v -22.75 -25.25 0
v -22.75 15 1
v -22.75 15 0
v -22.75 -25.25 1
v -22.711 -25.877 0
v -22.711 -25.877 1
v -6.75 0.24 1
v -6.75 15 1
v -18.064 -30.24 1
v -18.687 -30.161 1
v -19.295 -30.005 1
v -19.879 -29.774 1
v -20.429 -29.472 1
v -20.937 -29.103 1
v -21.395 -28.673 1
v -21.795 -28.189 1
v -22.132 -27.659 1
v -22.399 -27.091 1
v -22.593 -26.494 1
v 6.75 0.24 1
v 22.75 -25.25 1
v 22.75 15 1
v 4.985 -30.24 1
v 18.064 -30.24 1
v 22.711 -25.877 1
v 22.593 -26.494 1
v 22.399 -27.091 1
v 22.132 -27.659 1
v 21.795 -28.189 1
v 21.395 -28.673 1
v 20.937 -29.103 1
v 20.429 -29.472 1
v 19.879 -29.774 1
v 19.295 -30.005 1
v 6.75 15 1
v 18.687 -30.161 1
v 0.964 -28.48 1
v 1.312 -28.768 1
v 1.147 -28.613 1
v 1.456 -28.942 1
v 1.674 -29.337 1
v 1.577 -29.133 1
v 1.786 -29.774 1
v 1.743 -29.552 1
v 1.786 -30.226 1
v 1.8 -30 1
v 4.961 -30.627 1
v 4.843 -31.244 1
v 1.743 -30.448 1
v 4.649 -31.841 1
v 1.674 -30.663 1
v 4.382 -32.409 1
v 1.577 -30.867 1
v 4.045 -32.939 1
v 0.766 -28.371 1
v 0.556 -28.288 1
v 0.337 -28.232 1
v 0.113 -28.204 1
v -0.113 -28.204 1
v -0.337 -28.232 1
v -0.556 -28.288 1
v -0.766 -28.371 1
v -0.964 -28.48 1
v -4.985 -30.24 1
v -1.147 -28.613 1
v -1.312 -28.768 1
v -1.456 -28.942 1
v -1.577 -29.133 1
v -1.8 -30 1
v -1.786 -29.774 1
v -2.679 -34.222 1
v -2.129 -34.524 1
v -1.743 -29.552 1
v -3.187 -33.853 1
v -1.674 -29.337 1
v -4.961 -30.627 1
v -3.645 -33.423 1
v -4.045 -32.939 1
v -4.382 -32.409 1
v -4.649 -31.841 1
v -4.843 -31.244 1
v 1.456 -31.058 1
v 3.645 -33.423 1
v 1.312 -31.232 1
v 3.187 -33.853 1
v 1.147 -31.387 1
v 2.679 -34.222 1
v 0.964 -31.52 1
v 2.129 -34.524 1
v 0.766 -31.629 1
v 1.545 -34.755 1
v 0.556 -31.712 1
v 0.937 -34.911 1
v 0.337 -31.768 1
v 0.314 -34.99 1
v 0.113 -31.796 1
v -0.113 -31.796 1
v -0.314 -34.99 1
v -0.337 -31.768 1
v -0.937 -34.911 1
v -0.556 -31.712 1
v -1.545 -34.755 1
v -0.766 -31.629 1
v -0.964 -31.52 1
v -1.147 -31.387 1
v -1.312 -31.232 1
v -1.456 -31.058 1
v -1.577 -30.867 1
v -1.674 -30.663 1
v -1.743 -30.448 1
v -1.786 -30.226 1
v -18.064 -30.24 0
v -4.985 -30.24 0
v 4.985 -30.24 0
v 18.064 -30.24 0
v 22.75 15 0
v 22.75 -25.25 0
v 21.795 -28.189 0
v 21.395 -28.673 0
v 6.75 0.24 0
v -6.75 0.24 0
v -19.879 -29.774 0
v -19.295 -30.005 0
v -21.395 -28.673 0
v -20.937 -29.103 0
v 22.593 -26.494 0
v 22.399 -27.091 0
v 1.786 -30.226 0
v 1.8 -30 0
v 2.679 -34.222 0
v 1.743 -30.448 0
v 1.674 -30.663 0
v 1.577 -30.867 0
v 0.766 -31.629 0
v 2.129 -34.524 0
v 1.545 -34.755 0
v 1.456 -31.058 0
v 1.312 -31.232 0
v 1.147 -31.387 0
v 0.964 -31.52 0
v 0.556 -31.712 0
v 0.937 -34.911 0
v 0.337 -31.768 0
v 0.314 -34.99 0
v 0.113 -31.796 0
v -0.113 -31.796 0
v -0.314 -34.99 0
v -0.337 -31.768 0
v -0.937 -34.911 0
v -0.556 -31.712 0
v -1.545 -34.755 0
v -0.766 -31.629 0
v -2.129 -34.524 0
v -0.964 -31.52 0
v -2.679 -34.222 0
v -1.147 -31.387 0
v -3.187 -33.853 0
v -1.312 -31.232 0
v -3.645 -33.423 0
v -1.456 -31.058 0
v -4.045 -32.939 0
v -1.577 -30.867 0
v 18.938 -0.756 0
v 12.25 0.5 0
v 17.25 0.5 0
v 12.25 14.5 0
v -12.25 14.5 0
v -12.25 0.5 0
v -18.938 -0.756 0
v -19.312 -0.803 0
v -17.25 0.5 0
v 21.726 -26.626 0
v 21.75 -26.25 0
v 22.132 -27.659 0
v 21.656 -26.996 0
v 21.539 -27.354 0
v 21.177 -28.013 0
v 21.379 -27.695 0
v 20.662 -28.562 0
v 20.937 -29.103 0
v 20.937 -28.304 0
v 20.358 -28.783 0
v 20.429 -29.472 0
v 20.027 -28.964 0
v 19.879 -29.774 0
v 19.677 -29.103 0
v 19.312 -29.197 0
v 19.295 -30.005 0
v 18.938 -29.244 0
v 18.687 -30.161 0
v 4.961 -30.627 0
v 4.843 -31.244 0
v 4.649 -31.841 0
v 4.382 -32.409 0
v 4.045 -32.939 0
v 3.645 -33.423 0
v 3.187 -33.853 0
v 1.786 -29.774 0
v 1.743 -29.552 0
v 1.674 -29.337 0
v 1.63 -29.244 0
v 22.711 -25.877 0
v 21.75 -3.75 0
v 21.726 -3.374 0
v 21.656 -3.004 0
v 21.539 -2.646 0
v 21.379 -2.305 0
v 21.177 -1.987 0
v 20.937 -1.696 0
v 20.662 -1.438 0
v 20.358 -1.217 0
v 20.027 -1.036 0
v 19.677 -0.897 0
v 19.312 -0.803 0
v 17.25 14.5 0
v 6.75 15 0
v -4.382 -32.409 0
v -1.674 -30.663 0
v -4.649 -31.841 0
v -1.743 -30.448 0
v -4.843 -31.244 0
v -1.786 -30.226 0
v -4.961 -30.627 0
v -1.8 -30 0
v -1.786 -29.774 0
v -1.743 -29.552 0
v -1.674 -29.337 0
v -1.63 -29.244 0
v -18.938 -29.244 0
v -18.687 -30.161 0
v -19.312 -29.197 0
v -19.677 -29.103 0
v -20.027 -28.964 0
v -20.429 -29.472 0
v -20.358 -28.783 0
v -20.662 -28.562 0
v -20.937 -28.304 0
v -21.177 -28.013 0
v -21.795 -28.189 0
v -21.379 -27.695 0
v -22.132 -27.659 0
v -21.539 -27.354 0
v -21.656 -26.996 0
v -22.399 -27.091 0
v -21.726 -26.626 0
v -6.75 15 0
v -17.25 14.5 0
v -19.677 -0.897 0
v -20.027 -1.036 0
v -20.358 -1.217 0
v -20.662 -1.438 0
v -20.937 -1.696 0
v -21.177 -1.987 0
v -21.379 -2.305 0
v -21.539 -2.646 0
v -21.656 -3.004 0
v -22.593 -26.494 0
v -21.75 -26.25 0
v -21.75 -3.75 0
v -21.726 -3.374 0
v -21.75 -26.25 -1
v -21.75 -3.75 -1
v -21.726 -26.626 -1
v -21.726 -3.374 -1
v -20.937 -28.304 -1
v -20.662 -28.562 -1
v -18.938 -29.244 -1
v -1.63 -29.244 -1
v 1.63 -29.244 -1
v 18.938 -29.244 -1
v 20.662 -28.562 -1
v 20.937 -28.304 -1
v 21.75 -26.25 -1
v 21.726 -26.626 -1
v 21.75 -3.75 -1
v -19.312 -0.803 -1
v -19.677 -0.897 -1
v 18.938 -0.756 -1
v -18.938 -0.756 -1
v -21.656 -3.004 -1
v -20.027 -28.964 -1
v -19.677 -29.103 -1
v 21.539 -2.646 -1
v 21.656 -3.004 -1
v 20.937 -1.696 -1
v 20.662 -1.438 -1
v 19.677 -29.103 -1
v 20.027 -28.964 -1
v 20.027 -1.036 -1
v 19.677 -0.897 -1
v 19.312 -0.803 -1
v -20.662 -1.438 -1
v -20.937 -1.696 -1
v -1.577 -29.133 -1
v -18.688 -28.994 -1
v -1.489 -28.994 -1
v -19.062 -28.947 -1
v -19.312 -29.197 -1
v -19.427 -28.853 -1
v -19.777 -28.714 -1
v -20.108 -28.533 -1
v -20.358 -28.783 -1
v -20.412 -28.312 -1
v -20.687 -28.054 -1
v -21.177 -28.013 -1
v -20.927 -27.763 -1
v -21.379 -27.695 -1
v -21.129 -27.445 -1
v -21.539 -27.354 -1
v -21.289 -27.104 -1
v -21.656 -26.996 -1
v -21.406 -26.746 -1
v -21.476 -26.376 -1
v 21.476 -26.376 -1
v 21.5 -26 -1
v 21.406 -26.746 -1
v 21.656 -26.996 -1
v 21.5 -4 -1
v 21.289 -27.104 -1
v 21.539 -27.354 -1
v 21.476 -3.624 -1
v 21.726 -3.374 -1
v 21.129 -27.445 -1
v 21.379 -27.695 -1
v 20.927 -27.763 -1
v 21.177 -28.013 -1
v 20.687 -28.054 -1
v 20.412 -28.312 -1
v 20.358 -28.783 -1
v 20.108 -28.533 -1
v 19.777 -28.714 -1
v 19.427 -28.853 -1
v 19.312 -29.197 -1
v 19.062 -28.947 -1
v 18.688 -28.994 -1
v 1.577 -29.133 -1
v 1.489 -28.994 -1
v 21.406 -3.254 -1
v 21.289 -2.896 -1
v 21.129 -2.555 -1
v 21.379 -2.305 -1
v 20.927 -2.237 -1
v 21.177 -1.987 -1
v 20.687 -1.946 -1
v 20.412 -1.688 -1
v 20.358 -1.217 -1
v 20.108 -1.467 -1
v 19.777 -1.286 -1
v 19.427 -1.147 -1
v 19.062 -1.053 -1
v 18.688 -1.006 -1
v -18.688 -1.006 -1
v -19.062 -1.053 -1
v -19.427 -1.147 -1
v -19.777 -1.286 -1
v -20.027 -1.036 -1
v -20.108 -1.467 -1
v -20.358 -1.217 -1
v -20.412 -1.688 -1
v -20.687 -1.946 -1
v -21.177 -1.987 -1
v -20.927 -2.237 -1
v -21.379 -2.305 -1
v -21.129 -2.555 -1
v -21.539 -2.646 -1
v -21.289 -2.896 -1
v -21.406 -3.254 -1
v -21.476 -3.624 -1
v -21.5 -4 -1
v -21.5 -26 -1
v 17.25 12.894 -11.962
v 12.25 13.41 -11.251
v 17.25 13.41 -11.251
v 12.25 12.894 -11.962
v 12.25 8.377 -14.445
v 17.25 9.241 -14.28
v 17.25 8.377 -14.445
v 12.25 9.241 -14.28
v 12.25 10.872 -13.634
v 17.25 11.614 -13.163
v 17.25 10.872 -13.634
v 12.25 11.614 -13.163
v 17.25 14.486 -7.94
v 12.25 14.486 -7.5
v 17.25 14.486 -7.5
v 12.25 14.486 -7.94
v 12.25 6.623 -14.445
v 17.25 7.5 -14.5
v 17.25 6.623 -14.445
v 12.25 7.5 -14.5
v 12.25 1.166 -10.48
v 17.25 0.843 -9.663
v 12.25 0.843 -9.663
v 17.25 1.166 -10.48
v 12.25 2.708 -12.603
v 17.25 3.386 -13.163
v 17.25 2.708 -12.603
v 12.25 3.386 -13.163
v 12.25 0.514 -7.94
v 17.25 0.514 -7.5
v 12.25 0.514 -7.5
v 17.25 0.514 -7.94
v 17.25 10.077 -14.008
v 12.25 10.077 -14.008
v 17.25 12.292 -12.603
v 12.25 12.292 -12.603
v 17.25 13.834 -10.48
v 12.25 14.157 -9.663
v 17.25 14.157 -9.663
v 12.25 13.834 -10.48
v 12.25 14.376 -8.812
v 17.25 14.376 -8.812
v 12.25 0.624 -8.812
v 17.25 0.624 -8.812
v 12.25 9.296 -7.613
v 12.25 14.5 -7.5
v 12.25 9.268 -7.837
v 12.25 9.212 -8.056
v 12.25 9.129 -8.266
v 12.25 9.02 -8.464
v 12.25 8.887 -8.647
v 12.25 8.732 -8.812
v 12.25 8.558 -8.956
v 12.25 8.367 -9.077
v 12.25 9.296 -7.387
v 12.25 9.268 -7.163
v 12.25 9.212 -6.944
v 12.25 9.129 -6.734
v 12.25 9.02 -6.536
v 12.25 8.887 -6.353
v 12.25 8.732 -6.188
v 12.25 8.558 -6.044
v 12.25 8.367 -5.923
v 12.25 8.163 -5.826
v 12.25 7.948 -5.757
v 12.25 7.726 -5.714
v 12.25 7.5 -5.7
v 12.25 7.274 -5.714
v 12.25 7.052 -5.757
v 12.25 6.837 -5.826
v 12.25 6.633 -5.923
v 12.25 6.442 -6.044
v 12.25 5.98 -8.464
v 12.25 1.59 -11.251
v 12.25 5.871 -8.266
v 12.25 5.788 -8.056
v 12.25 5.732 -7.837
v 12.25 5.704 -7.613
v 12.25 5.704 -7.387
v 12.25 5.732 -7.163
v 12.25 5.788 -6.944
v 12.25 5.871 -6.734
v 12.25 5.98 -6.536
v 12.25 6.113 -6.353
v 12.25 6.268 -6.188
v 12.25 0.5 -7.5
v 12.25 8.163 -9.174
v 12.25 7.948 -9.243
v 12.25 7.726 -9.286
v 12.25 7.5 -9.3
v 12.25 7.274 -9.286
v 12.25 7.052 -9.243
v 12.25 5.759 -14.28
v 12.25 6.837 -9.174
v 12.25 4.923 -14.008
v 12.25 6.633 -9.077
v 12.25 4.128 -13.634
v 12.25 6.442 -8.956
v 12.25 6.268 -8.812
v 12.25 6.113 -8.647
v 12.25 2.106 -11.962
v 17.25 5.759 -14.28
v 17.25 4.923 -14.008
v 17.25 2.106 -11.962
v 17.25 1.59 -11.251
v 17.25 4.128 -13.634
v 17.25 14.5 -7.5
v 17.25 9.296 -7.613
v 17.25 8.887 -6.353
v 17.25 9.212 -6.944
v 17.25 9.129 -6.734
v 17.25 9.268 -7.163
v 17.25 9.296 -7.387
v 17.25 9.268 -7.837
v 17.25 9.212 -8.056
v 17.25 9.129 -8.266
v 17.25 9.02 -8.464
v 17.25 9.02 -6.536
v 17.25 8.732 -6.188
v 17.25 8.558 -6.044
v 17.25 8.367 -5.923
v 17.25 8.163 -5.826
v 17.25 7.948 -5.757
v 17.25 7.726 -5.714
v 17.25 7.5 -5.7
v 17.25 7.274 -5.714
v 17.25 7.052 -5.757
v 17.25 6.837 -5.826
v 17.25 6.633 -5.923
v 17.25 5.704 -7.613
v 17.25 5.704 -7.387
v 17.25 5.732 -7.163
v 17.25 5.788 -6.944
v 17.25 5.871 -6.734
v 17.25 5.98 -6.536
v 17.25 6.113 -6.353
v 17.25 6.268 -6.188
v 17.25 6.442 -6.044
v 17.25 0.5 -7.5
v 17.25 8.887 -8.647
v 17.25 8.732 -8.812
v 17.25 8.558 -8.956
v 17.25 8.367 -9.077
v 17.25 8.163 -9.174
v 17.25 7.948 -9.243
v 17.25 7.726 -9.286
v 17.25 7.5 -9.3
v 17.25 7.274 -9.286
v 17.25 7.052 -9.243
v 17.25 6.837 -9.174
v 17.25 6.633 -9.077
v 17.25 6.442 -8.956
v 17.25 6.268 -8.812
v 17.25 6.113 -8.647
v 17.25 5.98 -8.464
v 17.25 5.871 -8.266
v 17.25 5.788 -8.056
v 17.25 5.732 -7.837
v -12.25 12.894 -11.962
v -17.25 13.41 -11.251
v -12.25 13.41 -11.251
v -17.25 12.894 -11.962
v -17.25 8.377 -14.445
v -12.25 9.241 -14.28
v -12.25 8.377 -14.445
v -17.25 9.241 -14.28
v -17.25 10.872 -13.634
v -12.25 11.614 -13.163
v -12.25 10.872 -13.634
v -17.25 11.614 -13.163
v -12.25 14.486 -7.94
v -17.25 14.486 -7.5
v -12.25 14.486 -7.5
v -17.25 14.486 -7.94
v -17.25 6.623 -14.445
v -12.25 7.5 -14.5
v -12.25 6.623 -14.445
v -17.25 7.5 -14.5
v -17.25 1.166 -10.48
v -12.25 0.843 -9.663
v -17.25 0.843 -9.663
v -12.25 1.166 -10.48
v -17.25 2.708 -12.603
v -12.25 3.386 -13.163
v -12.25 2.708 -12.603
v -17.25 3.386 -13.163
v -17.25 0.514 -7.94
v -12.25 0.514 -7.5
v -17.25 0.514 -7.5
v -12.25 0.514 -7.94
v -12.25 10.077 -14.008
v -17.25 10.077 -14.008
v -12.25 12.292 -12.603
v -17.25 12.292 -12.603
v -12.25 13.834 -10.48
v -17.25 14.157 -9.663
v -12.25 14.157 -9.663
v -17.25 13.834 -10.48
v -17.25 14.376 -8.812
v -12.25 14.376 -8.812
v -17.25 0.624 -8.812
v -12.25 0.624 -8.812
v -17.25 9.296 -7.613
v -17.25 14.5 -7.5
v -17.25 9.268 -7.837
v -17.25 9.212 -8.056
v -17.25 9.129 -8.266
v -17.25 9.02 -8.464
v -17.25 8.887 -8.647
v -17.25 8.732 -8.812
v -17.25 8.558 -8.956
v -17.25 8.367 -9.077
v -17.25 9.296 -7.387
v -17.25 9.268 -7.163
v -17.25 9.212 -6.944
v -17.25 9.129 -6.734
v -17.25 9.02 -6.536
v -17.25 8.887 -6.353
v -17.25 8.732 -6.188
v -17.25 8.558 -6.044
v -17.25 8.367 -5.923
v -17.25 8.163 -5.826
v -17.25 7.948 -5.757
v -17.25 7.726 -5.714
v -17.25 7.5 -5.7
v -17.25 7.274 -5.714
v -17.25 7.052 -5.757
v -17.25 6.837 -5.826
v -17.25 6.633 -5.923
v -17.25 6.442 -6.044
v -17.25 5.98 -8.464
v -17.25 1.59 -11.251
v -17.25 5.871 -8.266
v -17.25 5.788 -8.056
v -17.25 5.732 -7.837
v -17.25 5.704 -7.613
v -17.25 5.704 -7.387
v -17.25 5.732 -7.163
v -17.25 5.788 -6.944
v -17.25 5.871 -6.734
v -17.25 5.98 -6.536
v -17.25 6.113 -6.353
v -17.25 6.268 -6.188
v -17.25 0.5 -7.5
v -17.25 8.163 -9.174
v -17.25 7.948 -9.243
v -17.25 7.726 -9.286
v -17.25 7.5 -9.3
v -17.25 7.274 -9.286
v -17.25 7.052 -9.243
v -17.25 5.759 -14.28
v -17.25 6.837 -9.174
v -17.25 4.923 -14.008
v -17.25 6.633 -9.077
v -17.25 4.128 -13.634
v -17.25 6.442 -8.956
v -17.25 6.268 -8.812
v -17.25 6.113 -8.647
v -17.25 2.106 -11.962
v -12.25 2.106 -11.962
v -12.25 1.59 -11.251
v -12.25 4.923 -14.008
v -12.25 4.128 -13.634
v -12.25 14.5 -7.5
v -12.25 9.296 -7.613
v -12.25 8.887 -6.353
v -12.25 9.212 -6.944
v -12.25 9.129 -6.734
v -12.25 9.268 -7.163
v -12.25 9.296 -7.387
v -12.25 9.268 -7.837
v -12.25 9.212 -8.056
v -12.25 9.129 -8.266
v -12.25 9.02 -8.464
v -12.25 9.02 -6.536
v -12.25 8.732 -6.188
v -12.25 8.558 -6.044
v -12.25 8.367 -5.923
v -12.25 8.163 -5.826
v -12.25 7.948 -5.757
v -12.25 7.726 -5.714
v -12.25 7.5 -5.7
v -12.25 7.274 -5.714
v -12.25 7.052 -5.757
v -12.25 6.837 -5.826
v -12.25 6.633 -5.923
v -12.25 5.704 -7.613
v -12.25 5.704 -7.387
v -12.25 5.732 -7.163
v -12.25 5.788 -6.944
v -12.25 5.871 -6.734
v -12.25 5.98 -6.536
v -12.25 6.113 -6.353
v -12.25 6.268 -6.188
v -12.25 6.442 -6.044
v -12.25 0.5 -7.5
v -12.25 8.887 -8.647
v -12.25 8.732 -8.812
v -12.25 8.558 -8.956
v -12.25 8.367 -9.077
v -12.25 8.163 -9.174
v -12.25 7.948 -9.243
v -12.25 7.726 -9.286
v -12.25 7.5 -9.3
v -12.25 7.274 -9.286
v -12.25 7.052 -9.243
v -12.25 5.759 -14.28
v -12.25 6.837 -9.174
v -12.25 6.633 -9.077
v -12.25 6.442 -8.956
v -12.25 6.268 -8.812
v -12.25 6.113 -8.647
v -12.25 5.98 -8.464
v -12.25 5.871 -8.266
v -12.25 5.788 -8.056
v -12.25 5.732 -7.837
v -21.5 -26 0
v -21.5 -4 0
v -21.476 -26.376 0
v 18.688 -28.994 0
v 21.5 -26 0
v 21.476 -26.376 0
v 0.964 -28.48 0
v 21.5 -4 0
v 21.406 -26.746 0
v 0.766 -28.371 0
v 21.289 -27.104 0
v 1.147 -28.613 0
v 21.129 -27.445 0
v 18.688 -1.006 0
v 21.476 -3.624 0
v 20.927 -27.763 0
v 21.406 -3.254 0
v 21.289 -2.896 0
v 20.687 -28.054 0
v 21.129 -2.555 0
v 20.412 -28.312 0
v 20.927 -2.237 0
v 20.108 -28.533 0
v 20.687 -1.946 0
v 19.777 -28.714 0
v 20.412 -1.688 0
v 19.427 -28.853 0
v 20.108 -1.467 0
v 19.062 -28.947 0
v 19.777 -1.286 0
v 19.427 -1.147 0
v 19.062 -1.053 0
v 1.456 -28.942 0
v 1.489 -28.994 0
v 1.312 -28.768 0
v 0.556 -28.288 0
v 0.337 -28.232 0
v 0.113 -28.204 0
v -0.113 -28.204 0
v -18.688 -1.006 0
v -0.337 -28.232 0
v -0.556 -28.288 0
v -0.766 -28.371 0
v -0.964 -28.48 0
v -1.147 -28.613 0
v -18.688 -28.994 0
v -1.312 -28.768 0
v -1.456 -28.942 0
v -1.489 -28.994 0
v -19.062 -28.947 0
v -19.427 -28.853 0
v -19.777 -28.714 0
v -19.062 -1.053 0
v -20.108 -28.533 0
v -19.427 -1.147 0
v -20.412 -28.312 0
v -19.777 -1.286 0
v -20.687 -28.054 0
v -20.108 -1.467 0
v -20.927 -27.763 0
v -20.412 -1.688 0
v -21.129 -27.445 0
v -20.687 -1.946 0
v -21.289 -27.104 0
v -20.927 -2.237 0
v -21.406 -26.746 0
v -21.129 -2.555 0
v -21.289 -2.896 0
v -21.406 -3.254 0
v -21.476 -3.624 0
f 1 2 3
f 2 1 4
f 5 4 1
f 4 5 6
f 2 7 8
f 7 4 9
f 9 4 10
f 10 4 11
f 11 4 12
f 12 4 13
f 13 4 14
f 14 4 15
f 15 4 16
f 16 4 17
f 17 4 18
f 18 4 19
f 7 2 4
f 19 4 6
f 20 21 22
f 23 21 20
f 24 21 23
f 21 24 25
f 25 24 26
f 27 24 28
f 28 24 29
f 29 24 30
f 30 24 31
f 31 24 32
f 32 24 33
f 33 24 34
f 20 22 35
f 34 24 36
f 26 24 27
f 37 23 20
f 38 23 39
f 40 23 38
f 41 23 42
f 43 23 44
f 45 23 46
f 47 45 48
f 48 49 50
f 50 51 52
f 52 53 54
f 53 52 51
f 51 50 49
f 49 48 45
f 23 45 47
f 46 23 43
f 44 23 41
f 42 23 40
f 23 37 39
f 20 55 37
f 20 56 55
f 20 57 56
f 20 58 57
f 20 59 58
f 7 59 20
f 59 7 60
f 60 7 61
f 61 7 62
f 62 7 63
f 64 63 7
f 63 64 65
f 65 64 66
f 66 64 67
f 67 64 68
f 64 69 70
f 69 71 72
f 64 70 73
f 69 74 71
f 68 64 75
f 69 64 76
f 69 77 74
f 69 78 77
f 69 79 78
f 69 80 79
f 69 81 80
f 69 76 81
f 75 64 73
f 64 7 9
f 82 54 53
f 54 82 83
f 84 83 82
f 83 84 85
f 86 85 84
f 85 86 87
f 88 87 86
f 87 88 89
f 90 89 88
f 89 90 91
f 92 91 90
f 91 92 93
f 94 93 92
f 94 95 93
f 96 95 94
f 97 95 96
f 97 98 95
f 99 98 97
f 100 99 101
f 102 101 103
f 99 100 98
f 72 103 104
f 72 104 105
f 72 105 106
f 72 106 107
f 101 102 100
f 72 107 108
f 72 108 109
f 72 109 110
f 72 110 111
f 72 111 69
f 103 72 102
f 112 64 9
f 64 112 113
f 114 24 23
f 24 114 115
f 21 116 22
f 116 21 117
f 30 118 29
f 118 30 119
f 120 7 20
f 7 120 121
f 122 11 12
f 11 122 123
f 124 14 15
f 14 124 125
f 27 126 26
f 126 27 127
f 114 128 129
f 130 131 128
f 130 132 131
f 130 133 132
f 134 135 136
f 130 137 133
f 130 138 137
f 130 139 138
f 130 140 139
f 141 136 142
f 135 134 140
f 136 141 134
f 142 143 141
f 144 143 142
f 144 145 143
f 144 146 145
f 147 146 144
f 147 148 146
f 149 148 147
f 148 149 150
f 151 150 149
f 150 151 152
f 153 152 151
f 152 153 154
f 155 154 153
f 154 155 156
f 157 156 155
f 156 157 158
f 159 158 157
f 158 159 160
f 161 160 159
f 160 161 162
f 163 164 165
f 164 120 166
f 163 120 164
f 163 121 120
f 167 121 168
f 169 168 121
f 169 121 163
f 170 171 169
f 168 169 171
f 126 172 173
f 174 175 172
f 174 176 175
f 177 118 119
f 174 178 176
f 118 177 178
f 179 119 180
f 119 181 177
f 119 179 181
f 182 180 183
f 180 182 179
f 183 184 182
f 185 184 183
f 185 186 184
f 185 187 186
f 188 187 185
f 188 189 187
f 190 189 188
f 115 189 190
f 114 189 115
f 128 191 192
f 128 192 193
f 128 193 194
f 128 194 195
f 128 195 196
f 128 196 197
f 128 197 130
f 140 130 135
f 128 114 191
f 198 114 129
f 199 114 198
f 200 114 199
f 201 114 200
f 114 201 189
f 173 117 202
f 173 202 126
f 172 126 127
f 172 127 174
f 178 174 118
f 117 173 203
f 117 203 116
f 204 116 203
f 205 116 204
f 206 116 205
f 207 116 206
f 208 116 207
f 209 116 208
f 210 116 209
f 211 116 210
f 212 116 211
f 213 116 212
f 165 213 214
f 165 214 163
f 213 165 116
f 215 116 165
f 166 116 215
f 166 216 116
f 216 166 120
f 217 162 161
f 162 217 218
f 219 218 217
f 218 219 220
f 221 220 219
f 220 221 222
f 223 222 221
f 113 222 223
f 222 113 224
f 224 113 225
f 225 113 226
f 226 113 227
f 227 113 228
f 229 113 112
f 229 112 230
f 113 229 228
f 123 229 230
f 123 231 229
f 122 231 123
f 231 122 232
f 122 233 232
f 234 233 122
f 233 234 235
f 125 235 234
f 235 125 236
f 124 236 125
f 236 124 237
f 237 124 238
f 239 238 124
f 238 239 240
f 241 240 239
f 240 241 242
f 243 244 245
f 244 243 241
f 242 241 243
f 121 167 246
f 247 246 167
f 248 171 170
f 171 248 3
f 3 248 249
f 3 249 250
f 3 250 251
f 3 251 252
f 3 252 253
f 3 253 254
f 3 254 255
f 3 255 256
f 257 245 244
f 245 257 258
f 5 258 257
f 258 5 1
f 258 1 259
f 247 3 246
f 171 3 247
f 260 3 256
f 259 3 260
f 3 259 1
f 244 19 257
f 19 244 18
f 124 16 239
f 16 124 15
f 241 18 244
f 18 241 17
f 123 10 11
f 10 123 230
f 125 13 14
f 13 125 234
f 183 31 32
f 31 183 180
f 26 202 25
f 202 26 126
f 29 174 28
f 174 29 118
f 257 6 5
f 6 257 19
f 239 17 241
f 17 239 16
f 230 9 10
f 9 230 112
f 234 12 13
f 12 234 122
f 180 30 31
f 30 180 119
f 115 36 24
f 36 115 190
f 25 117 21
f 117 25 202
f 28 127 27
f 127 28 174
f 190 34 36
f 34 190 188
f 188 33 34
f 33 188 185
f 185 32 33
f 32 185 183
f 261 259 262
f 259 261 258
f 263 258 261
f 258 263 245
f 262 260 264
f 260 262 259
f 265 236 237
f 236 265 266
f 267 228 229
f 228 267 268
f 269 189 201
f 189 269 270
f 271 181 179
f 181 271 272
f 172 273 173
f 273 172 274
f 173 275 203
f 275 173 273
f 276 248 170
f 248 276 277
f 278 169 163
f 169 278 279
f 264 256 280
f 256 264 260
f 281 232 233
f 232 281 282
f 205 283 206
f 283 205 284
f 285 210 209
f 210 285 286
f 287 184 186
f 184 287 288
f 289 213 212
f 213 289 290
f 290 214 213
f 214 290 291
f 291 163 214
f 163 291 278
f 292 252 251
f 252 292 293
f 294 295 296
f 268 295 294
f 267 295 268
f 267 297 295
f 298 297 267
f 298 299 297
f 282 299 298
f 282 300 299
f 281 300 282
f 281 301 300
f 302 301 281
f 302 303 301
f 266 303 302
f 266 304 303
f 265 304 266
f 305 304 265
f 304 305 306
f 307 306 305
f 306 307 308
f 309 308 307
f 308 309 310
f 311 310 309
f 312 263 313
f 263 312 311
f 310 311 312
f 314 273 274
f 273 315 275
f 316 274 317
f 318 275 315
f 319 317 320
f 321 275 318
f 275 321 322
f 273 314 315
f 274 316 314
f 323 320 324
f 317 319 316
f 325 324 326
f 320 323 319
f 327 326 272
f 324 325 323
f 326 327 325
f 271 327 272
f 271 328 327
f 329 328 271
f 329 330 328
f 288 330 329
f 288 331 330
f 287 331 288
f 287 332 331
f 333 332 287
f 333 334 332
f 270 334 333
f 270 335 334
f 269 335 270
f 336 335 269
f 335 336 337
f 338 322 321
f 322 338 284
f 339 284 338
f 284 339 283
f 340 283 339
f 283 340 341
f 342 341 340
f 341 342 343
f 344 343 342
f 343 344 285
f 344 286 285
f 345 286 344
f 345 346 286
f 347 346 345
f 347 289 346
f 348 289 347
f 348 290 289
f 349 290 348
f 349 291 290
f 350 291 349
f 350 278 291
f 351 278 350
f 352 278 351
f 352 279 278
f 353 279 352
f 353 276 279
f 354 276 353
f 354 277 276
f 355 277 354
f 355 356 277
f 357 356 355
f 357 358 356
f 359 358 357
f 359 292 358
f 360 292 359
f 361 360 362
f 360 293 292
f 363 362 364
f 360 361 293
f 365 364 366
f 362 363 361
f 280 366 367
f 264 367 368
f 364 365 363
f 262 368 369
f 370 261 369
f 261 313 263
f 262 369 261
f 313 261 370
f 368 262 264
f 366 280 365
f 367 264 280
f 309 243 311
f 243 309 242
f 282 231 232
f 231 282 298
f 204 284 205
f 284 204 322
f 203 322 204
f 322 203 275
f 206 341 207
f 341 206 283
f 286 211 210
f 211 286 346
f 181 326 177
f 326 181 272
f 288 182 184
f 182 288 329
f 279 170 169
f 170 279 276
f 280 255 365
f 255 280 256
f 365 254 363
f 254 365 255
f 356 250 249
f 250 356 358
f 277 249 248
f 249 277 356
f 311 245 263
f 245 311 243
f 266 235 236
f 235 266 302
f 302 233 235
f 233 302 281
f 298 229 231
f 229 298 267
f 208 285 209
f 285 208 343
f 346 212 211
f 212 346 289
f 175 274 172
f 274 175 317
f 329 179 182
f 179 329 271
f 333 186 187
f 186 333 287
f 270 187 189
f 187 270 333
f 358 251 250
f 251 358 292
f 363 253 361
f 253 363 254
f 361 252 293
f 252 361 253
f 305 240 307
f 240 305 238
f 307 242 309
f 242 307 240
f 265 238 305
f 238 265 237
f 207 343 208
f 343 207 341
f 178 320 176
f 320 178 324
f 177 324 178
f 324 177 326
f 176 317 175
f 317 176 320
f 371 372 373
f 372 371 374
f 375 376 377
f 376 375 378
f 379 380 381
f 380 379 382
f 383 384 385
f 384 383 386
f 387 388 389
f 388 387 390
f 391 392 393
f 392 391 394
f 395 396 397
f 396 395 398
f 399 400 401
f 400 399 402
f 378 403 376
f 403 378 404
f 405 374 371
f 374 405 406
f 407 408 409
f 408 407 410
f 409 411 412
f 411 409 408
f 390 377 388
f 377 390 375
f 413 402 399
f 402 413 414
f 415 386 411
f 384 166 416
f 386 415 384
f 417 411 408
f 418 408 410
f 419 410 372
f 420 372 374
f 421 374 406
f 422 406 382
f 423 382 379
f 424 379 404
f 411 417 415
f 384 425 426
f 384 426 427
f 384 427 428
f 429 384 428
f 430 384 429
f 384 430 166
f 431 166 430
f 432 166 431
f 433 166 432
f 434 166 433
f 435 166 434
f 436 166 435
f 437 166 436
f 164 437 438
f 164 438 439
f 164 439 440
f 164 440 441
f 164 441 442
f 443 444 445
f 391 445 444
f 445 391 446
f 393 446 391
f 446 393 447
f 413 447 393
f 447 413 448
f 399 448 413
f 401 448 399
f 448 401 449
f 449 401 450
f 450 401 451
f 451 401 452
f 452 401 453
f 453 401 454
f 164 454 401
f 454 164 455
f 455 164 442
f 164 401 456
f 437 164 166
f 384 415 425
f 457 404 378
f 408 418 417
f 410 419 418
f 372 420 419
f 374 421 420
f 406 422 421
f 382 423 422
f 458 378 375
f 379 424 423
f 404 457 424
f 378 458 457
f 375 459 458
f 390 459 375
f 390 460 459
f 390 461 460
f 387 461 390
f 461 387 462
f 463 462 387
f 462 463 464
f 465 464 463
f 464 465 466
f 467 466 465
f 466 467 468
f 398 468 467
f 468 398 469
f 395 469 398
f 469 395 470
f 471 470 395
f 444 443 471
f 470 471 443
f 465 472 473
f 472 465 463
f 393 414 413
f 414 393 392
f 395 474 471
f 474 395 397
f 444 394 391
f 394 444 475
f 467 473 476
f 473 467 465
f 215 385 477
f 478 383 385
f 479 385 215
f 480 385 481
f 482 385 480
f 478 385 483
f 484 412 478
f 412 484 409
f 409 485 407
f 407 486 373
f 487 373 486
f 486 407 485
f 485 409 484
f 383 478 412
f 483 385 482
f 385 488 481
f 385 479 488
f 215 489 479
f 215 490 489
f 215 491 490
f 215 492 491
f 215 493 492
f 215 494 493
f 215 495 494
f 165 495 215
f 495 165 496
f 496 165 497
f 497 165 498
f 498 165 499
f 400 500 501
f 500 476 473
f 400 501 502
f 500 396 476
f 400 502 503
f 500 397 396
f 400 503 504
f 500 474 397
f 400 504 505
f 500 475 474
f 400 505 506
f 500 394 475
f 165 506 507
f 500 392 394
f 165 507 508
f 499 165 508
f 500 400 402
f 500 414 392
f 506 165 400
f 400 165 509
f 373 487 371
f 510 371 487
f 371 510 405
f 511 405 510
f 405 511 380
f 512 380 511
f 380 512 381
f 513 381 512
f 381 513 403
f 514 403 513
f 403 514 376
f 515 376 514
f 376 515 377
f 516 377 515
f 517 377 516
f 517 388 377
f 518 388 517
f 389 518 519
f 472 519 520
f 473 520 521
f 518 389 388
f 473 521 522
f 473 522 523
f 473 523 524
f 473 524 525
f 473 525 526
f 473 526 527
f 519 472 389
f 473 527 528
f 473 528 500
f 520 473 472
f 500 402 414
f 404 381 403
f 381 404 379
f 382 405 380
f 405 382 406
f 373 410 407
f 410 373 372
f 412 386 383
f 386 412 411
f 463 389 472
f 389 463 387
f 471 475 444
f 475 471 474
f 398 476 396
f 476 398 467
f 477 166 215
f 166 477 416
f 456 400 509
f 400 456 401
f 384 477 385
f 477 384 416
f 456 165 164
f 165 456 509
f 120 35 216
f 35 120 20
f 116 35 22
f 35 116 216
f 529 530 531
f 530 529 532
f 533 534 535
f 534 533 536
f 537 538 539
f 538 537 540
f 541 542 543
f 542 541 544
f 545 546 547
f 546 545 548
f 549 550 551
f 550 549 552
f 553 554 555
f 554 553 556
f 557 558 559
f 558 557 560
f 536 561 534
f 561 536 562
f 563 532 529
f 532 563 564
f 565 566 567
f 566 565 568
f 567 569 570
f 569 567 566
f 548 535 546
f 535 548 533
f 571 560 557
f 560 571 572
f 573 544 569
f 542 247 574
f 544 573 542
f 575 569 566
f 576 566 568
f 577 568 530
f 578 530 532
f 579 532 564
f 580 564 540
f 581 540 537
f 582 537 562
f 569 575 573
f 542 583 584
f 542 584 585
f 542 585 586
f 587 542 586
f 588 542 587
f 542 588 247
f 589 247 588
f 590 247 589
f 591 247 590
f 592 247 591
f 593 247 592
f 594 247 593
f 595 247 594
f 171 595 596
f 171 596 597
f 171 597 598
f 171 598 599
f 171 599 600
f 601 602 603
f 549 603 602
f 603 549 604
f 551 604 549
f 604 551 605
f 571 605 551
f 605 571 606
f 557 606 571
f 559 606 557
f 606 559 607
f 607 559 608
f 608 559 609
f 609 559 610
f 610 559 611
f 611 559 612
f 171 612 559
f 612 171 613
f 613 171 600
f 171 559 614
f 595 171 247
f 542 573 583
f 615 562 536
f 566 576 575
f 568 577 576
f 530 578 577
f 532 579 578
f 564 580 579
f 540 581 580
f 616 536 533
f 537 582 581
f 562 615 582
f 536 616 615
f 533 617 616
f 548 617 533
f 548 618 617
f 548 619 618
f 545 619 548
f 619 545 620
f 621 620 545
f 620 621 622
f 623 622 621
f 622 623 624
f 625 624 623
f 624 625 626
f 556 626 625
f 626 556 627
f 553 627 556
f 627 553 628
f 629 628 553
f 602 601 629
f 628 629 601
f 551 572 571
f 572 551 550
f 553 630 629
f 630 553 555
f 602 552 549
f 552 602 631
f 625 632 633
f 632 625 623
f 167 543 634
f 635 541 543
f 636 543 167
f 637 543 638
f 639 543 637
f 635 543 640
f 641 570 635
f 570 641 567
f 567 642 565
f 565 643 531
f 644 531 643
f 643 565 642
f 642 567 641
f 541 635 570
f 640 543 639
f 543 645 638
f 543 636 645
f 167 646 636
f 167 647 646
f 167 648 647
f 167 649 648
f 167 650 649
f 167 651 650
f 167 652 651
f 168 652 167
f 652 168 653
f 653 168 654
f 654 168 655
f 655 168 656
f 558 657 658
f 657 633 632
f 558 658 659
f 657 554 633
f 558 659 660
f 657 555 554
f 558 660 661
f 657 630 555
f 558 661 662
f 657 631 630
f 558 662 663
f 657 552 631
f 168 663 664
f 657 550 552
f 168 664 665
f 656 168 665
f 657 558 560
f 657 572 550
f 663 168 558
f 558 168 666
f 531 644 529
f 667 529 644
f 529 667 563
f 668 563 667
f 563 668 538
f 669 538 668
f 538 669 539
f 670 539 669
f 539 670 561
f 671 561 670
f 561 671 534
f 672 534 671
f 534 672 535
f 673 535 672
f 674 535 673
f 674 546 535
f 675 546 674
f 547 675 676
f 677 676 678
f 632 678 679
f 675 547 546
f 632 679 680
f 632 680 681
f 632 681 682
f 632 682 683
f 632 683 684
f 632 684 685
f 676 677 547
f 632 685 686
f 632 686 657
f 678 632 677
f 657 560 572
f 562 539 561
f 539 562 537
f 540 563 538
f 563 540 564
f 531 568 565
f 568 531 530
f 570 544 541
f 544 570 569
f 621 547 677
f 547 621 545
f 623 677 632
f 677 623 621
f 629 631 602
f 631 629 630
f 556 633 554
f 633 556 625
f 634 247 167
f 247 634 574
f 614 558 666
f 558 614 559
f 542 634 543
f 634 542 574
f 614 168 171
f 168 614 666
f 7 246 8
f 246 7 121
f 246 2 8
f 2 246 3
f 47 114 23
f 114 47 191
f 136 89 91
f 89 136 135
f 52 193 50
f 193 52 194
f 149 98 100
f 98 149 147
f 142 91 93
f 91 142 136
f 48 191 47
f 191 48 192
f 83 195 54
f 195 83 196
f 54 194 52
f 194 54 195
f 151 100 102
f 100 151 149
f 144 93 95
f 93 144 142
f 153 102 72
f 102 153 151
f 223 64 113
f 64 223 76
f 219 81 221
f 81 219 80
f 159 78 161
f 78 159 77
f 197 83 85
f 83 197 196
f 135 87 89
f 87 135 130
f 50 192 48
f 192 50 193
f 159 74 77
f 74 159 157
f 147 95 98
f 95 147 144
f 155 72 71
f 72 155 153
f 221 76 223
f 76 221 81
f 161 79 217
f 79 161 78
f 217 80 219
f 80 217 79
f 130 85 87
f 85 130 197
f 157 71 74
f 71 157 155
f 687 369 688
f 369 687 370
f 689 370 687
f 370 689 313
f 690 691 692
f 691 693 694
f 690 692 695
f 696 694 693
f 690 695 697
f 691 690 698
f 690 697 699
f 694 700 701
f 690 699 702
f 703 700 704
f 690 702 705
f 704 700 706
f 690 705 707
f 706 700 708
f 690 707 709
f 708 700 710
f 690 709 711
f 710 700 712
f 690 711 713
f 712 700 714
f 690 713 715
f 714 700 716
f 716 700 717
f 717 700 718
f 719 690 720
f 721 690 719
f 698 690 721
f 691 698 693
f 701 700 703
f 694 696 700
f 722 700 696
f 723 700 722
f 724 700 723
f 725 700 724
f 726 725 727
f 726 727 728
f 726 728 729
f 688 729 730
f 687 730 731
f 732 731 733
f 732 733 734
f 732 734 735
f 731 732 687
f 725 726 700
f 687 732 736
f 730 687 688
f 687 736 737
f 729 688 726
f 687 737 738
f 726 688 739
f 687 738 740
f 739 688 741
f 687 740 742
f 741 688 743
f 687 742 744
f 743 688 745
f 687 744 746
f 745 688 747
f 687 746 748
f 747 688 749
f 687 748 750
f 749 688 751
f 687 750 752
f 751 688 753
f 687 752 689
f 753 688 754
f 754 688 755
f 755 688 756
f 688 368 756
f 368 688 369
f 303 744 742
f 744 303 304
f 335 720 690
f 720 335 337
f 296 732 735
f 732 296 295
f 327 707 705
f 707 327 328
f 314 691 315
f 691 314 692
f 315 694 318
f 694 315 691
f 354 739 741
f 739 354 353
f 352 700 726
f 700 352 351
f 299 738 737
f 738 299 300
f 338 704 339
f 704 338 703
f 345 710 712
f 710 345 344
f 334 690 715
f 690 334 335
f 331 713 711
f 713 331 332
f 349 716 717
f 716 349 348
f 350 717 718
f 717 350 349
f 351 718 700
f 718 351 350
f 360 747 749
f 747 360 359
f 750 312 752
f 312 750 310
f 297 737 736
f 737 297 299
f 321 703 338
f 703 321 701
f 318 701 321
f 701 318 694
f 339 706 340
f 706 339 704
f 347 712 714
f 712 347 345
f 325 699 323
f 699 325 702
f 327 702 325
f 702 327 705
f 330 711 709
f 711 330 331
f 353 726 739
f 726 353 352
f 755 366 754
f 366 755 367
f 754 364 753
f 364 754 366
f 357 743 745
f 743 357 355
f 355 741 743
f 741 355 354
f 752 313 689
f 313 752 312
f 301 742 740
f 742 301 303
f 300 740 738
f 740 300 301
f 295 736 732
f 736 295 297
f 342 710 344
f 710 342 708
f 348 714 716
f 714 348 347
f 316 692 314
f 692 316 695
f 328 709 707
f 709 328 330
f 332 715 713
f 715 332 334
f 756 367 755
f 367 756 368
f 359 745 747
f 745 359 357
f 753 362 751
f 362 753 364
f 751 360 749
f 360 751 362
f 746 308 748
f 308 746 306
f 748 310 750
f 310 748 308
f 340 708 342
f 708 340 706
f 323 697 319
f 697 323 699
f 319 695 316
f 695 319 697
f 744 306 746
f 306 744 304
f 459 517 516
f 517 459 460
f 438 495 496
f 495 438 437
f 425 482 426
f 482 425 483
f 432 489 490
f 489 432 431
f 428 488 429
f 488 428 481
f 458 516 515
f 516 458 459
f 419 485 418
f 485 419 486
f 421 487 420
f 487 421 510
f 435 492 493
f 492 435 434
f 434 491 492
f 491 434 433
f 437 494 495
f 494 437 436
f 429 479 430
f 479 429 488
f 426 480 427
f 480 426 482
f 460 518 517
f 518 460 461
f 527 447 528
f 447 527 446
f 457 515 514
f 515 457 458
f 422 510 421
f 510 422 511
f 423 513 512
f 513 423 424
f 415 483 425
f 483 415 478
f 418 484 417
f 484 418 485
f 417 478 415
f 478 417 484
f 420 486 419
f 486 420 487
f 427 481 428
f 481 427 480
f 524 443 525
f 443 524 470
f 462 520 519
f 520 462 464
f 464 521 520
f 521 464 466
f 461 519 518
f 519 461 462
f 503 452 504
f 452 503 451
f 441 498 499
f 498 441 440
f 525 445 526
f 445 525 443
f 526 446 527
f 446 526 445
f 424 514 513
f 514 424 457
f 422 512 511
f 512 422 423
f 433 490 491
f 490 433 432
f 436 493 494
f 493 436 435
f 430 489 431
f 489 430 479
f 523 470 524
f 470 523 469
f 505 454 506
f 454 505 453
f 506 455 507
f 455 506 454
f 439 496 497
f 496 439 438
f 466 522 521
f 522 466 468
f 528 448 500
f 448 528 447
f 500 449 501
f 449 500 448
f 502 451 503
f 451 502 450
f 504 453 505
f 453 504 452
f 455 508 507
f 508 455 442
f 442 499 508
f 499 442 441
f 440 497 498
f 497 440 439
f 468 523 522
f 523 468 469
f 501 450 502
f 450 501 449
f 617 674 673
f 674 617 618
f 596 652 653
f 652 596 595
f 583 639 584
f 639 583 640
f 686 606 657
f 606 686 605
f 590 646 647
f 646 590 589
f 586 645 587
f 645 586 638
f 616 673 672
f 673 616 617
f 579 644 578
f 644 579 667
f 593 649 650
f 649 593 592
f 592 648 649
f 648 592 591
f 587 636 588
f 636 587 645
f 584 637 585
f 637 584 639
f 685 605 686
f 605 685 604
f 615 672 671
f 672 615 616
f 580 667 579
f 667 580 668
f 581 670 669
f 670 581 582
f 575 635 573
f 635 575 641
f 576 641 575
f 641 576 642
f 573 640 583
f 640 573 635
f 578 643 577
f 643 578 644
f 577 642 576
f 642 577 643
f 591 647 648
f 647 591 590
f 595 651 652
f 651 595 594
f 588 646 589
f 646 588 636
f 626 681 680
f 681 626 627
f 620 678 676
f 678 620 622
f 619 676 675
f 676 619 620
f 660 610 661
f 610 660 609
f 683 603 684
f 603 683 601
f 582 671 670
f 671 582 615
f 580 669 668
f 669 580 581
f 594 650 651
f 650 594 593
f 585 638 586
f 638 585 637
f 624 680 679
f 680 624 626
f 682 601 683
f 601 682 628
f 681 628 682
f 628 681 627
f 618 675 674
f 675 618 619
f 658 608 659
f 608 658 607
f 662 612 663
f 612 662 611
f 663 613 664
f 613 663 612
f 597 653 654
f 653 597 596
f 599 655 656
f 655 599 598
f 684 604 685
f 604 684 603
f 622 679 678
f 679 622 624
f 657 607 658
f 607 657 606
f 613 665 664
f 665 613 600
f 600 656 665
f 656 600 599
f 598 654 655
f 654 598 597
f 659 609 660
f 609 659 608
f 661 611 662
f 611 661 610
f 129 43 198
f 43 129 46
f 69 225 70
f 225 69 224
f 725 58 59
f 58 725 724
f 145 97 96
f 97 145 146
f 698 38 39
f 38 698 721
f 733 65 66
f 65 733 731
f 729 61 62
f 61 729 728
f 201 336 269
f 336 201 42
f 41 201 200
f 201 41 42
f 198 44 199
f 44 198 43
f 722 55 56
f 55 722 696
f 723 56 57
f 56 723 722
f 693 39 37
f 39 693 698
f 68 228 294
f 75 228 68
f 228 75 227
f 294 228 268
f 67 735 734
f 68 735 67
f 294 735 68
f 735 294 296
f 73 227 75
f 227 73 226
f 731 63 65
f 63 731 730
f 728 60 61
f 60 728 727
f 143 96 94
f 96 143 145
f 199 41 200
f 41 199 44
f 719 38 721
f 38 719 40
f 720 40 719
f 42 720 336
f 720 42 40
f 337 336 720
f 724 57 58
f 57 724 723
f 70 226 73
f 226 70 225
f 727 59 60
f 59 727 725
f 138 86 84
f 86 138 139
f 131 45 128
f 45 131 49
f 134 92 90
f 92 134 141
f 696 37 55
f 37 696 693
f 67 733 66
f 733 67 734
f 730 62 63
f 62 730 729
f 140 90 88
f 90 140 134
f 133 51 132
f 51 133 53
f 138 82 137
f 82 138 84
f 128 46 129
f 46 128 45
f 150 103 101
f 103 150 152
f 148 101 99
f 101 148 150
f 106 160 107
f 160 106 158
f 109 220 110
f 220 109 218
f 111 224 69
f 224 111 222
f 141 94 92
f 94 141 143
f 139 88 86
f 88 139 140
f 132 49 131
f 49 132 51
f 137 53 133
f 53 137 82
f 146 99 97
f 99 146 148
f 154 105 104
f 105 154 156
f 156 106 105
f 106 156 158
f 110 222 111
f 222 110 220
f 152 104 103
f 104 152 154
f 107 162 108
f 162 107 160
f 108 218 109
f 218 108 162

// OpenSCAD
$fn = 50;


difference() {
	union() {
		translate(v = [0, -15.0000000000, 0]) {
			hull() {
				translate(v = [-17.7500000000, 10.2500000000, 0]) {
					cylinder(h = 1, r = 5);
				}
				translate(v = [17.7500000000, 10.2500000000, 0]) {
					cylinder(h = 1, r = 5);
				}
				translate(v = [-17.7500000000, -10.2500000000, 0]) {
					cylinder(h = 1, r = 5);
				}
				translate(v = [17.7500000000, -10.2500000000, 0]) {
					cylinder(h = 1, r = 5);
				}
			}
		}
		translate(v = [0.0000000000, -15.0000000000, -1]) {
			hull() {
				translate(v = [-18.7500000000, 11.2500000000, 0]) {
					cylinder(h = 2, r = 3.0000000000);
				}
				translate(v = [18.7500000000, 11.2500000000, 0]) {
					cylinder(h = 2, r = 3.0000000000);
				}
				translate(v = [-18.7500000000, -11.2500000000, 0]) {
					cylinder(h = 2, r = 3.0000000000);
				}
				translate(v = [18.7500000000, -11.2500000000, 0]) {
					cylinder(h = 2, r = 3.0000000000);
				}
			}
		}
		translate(v = [12.2500000000, 7.5000000000, -7.5000000000]) {
			rotate(a = [0, 90, 0]) {
				cylinder(h = 5, r = 7.0000000000);
			}
		}
		translate(v = [12.2500000000, 0.5000000000, -7.5000000000]) {
			cube(size = [5, 14, 7.5000000000]);
		}
		translate(v = [6.7500000000, -15.0000000000, 0.0000000000]) {
			cube(size = [16, 30, 1]);
		}
		translate(v = [-17.2500000000, 7.5000000000, -7.5000000000]) {
			rotate(a = [0, 90, 0]) {
				cylinder(h = 5, r = 7.0000000000);
			}
		}
		translate(v = [-17.2500000000, 0.5000000000, -7.5000000000]) {
			cube(size = [5, 14, 7.5000000000]);
		}
		translate(v = [-22.7500000000, -15.0000000000, 0.0000000000]) {
			cube(size = [16, 30, 1]);
		}
		translate(v = [0, -30, 0.0000000000]) {
			cylinder(h = 1, r = 5.0000000000);
		}
	}
	union() {
		translate(v = [0.0000000000, -15.0000000000, -2]) {
			hull() {
				translate(v = [-18.5000000000, 11.0000000000, 0]) {
					cylinder(h = 2, r = 3.0000000000);
				}
				translate(v = [18.5000000000, 11.0000000000, 0]) {
					cylinder(h = 2, r = 3.0000000000);
				}
				translate(v = [-18.5000000000, -11.0000000000, 0]) {
					cylinder(h = 2, r = 3.0000000000);
				}
				translate(v = [18.5000000000, -11.0000000000, 0]) {
					cylinder(h = 2, r = 3.0000000000);
				}
			}
		}
		translate(v = [7.2500000000, 7.5000000000, -7.5000000000]) {
			rotate(a = [0, 90, 0]) {
				cylinder(h = 15, r = 1.8000000000);
			}
		}
		translate(v = [-22.2500000000, 7.5000000000, -7.5000000000]) {
			rotate(a = [0, 90, 0]) {
				cylinder(h = 15, r = 1.8000000000);
			}
		}
		translate(v = [0, -30, -100.0000000000]) {
			cylinder(h = 200, r = 1.8000000000);
		}
	}
}
